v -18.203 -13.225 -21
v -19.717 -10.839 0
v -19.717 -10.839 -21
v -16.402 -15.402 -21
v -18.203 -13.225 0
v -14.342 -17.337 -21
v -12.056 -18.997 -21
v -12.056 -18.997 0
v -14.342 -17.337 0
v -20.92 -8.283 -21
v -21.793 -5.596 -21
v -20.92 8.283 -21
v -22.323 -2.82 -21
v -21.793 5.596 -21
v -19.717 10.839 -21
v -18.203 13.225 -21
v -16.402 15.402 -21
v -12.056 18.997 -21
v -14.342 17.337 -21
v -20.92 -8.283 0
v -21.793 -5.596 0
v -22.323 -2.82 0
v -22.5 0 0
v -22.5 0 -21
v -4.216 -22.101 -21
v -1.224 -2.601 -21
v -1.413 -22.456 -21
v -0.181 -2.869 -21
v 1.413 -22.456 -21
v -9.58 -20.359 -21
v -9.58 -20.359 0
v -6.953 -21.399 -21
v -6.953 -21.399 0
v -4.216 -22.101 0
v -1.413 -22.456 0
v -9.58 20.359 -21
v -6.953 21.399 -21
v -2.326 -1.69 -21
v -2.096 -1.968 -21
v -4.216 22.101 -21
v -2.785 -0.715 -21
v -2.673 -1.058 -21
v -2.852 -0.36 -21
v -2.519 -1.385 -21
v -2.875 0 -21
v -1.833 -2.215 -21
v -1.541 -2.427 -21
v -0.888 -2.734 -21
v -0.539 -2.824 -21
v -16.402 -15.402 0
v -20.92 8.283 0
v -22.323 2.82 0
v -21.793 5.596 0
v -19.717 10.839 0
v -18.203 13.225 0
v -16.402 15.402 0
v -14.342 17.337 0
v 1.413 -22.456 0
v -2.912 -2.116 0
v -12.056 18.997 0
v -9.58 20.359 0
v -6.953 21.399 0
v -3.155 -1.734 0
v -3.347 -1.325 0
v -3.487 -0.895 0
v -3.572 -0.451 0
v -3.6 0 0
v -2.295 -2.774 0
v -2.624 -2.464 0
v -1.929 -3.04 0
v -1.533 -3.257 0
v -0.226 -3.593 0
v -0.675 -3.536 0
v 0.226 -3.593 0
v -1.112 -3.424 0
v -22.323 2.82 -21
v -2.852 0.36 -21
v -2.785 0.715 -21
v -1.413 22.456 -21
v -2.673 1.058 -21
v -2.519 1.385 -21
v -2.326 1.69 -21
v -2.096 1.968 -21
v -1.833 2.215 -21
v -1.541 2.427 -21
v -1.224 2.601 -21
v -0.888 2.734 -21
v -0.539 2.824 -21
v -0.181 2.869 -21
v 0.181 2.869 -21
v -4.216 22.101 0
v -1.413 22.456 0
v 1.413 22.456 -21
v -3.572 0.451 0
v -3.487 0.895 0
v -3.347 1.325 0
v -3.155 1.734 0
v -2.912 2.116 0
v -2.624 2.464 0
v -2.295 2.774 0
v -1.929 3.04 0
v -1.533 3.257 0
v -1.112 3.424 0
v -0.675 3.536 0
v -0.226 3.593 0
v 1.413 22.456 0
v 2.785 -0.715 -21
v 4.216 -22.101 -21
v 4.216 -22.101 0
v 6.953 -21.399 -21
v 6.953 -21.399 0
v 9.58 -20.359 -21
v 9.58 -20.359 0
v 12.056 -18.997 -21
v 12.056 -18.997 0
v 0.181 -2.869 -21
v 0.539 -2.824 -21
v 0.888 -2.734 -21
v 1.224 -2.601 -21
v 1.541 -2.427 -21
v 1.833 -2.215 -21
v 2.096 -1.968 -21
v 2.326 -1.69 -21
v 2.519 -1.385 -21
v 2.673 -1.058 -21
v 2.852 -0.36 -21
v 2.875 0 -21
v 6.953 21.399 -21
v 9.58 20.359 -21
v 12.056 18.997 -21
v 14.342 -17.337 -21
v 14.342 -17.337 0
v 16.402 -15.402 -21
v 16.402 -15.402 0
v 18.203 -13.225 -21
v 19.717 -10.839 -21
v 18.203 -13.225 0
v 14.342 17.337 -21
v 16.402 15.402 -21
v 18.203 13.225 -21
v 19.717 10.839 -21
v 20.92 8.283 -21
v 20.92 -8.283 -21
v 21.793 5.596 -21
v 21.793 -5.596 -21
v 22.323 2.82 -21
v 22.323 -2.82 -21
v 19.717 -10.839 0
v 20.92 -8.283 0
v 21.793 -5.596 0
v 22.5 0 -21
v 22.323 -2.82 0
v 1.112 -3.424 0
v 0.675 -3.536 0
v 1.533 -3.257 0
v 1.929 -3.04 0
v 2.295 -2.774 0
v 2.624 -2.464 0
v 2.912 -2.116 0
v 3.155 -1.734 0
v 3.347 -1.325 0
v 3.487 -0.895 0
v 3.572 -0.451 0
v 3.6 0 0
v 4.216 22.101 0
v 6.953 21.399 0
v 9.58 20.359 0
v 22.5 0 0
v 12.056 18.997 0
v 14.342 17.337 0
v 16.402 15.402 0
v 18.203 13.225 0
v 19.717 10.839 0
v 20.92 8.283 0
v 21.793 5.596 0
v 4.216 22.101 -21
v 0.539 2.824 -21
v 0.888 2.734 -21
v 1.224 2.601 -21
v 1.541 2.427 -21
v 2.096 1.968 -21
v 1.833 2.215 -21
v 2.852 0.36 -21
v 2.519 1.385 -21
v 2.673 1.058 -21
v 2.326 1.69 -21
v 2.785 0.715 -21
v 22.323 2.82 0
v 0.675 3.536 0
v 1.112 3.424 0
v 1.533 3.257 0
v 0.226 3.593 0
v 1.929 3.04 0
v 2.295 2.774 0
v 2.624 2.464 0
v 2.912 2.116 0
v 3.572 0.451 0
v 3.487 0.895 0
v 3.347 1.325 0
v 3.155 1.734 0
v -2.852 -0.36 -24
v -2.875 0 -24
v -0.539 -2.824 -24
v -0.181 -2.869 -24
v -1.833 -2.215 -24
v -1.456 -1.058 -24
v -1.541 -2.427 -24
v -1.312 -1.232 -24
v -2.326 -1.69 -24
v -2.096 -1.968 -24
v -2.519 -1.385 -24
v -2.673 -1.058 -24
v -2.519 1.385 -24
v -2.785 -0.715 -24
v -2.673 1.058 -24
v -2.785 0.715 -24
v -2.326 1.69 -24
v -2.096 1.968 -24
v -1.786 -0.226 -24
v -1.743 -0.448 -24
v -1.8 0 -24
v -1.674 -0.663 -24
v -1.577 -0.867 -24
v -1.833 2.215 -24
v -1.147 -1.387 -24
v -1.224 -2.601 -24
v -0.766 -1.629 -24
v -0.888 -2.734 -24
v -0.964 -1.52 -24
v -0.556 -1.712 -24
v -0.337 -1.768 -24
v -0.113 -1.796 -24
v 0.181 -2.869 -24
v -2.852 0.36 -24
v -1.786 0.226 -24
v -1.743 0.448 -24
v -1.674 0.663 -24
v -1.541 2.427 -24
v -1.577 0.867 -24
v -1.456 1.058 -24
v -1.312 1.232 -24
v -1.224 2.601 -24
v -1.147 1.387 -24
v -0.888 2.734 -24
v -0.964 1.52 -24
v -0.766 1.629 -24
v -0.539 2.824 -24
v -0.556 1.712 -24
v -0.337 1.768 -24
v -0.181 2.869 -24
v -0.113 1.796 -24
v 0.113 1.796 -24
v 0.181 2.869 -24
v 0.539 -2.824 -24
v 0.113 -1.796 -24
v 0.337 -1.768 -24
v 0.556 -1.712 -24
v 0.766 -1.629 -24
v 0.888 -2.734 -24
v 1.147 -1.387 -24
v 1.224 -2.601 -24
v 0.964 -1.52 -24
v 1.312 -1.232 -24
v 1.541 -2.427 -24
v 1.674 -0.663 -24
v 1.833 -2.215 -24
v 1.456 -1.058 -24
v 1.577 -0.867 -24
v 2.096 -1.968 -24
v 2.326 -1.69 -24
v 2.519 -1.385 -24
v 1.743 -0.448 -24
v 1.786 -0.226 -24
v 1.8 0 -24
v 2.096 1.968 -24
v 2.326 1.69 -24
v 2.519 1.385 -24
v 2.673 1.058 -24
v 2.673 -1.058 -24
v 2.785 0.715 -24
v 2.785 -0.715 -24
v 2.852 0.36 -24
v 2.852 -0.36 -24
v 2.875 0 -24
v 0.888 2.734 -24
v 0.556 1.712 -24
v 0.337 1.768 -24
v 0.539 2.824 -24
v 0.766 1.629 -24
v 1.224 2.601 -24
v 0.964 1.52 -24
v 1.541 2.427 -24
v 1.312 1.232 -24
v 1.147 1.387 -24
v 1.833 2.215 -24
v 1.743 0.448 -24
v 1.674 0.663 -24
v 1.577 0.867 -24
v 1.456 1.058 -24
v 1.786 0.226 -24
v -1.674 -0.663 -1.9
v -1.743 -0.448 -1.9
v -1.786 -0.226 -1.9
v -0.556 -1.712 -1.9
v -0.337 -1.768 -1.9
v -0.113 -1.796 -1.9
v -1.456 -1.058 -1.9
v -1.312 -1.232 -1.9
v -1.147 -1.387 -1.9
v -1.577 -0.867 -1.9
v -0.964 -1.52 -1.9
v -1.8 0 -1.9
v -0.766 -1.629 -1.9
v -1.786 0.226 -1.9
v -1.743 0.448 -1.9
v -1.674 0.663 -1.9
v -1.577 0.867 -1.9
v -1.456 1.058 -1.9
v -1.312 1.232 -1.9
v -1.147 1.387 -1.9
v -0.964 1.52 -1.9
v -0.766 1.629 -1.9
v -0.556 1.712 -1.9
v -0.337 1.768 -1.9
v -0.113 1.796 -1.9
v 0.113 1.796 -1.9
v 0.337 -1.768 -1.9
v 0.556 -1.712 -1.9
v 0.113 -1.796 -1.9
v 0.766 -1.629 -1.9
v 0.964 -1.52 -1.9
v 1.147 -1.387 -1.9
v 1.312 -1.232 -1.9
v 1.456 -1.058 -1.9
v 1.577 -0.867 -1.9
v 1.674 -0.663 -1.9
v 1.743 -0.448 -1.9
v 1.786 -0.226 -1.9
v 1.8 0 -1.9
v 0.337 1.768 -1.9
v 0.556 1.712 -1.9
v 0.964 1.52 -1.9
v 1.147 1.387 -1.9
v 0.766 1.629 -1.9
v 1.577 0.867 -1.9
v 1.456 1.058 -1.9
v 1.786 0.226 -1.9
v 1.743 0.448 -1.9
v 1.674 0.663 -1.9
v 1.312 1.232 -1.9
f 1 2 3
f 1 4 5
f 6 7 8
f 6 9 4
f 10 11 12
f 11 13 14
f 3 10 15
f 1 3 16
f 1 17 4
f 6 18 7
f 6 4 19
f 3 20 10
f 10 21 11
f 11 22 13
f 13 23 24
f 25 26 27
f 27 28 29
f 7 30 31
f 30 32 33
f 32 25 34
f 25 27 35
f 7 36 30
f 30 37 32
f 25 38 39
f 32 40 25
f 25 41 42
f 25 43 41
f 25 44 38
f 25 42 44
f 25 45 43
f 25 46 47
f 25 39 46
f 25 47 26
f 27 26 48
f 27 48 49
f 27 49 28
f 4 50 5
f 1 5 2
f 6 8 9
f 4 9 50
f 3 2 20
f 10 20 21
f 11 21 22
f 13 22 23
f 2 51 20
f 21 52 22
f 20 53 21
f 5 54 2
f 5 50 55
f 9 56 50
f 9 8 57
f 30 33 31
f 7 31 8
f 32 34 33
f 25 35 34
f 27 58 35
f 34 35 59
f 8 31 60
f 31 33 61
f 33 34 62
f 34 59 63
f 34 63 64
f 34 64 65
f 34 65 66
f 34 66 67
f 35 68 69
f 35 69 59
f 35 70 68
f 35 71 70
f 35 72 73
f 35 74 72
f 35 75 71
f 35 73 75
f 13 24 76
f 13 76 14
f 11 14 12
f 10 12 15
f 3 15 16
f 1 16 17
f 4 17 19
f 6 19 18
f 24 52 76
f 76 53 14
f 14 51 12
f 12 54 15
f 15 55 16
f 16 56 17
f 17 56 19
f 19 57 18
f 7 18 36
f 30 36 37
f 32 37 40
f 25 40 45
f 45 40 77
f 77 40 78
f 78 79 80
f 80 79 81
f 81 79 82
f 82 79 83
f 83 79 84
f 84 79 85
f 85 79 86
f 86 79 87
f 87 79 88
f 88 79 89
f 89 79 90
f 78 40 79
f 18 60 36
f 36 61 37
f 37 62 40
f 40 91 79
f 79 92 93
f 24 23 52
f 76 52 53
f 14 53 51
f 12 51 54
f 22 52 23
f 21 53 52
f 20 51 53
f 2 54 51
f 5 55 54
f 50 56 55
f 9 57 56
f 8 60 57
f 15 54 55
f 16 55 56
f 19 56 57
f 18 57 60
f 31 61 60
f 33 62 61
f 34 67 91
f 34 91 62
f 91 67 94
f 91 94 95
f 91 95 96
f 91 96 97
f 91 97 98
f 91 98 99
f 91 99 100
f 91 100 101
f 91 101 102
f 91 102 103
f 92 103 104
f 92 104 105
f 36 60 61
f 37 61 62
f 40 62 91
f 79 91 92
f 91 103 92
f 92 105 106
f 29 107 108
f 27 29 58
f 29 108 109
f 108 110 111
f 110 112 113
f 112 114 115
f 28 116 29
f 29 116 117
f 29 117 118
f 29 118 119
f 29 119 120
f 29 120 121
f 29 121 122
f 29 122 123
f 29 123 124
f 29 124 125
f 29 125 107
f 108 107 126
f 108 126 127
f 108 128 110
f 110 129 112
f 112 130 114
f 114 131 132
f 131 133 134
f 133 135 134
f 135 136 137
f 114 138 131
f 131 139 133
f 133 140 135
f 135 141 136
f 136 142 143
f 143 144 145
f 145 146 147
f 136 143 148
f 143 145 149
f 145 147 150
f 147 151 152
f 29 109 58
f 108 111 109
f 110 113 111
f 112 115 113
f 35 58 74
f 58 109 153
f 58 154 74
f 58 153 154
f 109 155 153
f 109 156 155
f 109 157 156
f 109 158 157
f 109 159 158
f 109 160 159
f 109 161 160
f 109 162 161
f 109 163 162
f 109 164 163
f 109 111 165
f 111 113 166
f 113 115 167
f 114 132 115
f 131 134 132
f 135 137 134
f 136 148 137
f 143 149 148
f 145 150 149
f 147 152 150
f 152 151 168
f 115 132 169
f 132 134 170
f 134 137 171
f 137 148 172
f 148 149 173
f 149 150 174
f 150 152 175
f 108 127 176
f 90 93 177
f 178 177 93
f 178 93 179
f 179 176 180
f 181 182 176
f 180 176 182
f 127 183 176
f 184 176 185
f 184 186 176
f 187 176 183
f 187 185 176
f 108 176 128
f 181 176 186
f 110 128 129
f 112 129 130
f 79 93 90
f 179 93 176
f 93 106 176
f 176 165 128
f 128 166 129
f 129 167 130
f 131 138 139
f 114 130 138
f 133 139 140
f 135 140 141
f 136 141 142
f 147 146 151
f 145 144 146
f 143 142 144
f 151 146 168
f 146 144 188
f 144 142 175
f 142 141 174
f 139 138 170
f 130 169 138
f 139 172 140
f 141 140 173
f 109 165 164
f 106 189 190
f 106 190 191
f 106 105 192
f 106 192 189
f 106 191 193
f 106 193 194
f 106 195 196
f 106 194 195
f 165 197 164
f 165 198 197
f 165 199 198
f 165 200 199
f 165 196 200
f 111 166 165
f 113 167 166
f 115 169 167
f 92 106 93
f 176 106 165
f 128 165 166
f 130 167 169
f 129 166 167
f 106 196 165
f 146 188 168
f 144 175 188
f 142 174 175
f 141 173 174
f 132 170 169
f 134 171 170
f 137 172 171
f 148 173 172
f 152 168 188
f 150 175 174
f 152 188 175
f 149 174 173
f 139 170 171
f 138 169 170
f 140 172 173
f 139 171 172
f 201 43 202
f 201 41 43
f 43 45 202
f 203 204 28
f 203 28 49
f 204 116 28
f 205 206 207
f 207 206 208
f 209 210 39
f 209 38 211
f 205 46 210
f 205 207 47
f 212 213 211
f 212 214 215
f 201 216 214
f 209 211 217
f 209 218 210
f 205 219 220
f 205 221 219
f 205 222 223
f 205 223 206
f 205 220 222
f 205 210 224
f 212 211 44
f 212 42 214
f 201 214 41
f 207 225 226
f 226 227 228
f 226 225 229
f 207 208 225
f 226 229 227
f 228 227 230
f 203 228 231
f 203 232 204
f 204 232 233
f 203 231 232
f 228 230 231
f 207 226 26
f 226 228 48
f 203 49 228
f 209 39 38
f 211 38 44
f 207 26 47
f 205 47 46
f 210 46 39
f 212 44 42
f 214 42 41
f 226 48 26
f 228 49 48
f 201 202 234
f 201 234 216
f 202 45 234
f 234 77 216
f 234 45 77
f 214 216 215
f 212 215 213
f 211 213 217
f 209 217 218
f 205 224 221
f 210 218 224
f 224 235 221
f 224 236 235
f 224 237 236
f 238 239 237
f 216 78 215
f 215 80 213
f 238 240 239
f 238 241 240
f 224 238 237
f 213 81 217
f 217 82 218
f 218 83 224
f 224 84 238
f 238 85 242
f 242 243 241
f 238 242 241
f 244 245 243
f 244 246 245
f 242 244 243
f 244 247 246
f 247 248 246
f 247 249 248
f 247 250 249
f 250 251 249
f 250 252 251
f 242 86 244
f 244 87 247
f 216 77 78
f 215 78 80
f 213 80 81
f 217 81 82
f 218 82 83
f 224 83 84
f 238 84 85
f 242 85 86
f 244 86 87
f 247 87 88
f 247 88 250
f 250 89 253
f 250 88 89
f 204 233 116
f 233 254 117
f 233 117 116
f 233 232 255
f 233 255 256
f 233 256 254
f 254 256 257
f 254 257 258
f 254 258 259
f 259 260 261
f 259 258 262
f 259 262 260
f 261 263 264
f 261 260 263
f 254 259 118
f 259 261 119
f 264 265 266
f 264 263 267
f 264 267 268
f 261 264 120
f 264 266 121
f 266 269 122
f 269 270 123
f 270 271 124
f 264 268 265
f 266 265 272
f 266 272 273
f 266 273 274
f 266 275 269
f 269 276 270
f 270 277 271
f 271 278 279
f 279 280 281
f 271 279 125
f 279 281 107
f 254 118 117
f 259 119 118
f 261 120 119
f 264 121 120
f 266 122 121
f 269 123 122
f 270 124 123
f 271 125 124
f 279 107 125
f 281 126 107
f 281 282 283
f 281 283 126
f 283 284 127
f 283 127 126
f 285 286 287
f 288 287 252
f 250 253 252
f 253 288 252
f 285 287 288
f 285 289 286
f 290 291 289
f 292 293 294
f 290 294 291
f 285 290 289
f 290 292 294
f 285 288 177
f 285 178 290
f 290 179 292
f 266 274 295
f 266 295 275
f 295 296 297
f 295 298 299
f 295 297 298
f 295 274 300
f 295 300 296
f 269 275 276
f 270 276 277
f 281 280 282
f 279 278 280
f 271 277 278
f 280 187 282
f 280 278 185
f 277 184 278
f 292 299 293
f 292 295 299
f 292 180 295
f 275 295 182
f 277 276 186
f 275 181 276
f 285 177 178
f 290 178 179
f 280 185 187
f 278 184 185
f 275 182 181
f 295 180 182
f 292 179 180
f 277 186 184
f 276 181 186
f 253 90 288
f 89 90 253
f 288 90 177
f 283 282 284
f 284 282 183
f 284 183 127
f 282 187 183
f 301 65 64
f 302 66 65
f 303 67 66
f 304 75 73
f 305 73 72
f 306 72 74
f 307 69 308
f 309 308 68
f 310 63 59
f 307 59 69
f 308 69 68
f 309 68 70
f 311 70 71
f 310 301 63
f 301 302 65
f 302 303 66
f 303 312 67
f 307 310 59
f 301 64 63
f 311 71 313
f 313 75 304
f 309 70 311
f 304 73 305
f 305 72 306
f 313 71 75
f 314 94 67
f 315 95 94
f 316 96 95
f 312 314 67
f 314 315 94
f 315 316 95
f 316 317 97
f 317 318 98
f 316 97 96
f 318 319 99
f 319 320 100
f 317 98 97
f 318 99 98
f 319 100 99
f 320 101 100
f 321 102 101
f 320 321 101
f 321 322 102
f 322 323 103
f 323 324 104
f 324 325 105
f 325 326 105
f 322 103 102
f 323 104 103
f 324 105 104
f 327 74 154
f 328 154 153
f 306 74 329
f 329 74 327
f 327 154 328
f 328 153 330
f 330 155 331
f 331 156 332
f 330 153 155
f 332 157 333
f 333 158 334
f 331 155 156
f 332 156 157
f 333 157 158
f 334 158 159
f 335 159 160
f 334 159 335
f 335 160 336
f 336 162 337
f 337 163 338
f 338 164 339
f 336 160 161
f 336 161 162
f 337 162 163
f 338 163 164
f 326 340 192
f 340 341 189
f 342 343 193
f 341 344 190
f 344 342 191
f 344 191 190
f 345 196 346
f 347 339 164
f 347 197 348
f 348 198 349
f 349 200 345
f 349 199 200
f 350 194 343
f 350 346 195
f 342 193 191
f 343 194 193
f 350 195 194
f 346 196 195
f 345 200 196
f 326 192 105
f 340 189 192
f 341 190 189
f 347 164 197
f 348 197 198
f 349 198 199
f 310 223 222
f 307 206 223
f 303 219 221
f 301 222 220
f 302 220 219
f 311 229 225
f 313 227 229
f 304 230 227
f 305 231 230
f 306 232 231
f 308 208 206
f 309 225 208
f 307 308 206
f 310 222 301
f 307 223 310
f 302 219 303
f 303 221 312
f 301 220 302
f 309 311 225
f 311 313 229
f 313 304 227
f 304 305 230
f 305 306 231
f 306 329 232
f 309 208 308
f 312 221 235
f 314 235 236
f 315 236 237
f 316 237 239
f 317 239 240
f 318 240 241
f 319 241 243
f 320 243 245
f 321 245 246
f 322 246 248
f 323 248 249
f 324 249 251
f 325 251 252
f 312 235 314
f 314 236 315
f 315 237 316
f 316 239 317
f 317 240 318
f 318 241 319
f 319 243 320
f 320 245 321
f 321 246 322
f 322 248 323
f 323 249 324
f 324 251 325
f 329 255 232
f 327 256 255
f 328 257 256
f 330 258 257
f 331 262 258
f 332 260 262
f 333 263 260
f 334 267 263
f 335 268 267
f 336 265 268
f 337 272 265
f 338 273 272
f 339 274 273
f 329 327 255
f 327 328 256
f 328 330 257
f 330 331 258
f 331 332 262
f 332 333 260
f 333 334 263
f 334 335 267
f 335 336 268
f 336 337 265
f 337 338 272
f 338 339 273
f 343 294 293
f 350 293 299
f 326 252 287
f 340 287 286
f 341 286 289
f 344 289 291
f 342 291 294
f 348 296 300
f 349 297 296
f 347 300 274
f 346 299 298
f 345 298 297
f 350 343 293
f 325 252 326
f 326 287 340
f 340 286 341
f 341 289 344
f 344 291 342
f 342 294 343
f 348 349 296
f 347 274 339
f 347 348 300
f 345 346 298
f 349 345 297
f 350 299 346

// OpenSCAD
$fn = 50;

difference() {
	union() {
		translate(v = [0, 0, -21.0]) {
			cylinder(h = 21, r = 22.5);
		}
		#translate(v = [0, 0, -24.0]) {
			cylinder(h = 24, r = 2.875);
		}
	}
	union() {
		translate(v = [0, 0, 0]) {
			rotate(a = [0, 0, 0]) {
				difference() {
					union() {
						translate(v = [0, 0, -24.0]) {
							cylinder(h = 24, r = 1.5);
						}
						translate(v = [0, 0, -1.9]) {
							cylinder(h = 1.9, r1 = 1.8, r2 = 3.6);
						}
						translate(v = [0, 0, -24.0]) {
							cylinder(h = 24, r = 1.8);
						}
						translate(v = [0, 0, -24.0]) {
							cylinder(h = 24, r = 1.5);
						}
					}
					union();
				}
			}
		}
	}
}
